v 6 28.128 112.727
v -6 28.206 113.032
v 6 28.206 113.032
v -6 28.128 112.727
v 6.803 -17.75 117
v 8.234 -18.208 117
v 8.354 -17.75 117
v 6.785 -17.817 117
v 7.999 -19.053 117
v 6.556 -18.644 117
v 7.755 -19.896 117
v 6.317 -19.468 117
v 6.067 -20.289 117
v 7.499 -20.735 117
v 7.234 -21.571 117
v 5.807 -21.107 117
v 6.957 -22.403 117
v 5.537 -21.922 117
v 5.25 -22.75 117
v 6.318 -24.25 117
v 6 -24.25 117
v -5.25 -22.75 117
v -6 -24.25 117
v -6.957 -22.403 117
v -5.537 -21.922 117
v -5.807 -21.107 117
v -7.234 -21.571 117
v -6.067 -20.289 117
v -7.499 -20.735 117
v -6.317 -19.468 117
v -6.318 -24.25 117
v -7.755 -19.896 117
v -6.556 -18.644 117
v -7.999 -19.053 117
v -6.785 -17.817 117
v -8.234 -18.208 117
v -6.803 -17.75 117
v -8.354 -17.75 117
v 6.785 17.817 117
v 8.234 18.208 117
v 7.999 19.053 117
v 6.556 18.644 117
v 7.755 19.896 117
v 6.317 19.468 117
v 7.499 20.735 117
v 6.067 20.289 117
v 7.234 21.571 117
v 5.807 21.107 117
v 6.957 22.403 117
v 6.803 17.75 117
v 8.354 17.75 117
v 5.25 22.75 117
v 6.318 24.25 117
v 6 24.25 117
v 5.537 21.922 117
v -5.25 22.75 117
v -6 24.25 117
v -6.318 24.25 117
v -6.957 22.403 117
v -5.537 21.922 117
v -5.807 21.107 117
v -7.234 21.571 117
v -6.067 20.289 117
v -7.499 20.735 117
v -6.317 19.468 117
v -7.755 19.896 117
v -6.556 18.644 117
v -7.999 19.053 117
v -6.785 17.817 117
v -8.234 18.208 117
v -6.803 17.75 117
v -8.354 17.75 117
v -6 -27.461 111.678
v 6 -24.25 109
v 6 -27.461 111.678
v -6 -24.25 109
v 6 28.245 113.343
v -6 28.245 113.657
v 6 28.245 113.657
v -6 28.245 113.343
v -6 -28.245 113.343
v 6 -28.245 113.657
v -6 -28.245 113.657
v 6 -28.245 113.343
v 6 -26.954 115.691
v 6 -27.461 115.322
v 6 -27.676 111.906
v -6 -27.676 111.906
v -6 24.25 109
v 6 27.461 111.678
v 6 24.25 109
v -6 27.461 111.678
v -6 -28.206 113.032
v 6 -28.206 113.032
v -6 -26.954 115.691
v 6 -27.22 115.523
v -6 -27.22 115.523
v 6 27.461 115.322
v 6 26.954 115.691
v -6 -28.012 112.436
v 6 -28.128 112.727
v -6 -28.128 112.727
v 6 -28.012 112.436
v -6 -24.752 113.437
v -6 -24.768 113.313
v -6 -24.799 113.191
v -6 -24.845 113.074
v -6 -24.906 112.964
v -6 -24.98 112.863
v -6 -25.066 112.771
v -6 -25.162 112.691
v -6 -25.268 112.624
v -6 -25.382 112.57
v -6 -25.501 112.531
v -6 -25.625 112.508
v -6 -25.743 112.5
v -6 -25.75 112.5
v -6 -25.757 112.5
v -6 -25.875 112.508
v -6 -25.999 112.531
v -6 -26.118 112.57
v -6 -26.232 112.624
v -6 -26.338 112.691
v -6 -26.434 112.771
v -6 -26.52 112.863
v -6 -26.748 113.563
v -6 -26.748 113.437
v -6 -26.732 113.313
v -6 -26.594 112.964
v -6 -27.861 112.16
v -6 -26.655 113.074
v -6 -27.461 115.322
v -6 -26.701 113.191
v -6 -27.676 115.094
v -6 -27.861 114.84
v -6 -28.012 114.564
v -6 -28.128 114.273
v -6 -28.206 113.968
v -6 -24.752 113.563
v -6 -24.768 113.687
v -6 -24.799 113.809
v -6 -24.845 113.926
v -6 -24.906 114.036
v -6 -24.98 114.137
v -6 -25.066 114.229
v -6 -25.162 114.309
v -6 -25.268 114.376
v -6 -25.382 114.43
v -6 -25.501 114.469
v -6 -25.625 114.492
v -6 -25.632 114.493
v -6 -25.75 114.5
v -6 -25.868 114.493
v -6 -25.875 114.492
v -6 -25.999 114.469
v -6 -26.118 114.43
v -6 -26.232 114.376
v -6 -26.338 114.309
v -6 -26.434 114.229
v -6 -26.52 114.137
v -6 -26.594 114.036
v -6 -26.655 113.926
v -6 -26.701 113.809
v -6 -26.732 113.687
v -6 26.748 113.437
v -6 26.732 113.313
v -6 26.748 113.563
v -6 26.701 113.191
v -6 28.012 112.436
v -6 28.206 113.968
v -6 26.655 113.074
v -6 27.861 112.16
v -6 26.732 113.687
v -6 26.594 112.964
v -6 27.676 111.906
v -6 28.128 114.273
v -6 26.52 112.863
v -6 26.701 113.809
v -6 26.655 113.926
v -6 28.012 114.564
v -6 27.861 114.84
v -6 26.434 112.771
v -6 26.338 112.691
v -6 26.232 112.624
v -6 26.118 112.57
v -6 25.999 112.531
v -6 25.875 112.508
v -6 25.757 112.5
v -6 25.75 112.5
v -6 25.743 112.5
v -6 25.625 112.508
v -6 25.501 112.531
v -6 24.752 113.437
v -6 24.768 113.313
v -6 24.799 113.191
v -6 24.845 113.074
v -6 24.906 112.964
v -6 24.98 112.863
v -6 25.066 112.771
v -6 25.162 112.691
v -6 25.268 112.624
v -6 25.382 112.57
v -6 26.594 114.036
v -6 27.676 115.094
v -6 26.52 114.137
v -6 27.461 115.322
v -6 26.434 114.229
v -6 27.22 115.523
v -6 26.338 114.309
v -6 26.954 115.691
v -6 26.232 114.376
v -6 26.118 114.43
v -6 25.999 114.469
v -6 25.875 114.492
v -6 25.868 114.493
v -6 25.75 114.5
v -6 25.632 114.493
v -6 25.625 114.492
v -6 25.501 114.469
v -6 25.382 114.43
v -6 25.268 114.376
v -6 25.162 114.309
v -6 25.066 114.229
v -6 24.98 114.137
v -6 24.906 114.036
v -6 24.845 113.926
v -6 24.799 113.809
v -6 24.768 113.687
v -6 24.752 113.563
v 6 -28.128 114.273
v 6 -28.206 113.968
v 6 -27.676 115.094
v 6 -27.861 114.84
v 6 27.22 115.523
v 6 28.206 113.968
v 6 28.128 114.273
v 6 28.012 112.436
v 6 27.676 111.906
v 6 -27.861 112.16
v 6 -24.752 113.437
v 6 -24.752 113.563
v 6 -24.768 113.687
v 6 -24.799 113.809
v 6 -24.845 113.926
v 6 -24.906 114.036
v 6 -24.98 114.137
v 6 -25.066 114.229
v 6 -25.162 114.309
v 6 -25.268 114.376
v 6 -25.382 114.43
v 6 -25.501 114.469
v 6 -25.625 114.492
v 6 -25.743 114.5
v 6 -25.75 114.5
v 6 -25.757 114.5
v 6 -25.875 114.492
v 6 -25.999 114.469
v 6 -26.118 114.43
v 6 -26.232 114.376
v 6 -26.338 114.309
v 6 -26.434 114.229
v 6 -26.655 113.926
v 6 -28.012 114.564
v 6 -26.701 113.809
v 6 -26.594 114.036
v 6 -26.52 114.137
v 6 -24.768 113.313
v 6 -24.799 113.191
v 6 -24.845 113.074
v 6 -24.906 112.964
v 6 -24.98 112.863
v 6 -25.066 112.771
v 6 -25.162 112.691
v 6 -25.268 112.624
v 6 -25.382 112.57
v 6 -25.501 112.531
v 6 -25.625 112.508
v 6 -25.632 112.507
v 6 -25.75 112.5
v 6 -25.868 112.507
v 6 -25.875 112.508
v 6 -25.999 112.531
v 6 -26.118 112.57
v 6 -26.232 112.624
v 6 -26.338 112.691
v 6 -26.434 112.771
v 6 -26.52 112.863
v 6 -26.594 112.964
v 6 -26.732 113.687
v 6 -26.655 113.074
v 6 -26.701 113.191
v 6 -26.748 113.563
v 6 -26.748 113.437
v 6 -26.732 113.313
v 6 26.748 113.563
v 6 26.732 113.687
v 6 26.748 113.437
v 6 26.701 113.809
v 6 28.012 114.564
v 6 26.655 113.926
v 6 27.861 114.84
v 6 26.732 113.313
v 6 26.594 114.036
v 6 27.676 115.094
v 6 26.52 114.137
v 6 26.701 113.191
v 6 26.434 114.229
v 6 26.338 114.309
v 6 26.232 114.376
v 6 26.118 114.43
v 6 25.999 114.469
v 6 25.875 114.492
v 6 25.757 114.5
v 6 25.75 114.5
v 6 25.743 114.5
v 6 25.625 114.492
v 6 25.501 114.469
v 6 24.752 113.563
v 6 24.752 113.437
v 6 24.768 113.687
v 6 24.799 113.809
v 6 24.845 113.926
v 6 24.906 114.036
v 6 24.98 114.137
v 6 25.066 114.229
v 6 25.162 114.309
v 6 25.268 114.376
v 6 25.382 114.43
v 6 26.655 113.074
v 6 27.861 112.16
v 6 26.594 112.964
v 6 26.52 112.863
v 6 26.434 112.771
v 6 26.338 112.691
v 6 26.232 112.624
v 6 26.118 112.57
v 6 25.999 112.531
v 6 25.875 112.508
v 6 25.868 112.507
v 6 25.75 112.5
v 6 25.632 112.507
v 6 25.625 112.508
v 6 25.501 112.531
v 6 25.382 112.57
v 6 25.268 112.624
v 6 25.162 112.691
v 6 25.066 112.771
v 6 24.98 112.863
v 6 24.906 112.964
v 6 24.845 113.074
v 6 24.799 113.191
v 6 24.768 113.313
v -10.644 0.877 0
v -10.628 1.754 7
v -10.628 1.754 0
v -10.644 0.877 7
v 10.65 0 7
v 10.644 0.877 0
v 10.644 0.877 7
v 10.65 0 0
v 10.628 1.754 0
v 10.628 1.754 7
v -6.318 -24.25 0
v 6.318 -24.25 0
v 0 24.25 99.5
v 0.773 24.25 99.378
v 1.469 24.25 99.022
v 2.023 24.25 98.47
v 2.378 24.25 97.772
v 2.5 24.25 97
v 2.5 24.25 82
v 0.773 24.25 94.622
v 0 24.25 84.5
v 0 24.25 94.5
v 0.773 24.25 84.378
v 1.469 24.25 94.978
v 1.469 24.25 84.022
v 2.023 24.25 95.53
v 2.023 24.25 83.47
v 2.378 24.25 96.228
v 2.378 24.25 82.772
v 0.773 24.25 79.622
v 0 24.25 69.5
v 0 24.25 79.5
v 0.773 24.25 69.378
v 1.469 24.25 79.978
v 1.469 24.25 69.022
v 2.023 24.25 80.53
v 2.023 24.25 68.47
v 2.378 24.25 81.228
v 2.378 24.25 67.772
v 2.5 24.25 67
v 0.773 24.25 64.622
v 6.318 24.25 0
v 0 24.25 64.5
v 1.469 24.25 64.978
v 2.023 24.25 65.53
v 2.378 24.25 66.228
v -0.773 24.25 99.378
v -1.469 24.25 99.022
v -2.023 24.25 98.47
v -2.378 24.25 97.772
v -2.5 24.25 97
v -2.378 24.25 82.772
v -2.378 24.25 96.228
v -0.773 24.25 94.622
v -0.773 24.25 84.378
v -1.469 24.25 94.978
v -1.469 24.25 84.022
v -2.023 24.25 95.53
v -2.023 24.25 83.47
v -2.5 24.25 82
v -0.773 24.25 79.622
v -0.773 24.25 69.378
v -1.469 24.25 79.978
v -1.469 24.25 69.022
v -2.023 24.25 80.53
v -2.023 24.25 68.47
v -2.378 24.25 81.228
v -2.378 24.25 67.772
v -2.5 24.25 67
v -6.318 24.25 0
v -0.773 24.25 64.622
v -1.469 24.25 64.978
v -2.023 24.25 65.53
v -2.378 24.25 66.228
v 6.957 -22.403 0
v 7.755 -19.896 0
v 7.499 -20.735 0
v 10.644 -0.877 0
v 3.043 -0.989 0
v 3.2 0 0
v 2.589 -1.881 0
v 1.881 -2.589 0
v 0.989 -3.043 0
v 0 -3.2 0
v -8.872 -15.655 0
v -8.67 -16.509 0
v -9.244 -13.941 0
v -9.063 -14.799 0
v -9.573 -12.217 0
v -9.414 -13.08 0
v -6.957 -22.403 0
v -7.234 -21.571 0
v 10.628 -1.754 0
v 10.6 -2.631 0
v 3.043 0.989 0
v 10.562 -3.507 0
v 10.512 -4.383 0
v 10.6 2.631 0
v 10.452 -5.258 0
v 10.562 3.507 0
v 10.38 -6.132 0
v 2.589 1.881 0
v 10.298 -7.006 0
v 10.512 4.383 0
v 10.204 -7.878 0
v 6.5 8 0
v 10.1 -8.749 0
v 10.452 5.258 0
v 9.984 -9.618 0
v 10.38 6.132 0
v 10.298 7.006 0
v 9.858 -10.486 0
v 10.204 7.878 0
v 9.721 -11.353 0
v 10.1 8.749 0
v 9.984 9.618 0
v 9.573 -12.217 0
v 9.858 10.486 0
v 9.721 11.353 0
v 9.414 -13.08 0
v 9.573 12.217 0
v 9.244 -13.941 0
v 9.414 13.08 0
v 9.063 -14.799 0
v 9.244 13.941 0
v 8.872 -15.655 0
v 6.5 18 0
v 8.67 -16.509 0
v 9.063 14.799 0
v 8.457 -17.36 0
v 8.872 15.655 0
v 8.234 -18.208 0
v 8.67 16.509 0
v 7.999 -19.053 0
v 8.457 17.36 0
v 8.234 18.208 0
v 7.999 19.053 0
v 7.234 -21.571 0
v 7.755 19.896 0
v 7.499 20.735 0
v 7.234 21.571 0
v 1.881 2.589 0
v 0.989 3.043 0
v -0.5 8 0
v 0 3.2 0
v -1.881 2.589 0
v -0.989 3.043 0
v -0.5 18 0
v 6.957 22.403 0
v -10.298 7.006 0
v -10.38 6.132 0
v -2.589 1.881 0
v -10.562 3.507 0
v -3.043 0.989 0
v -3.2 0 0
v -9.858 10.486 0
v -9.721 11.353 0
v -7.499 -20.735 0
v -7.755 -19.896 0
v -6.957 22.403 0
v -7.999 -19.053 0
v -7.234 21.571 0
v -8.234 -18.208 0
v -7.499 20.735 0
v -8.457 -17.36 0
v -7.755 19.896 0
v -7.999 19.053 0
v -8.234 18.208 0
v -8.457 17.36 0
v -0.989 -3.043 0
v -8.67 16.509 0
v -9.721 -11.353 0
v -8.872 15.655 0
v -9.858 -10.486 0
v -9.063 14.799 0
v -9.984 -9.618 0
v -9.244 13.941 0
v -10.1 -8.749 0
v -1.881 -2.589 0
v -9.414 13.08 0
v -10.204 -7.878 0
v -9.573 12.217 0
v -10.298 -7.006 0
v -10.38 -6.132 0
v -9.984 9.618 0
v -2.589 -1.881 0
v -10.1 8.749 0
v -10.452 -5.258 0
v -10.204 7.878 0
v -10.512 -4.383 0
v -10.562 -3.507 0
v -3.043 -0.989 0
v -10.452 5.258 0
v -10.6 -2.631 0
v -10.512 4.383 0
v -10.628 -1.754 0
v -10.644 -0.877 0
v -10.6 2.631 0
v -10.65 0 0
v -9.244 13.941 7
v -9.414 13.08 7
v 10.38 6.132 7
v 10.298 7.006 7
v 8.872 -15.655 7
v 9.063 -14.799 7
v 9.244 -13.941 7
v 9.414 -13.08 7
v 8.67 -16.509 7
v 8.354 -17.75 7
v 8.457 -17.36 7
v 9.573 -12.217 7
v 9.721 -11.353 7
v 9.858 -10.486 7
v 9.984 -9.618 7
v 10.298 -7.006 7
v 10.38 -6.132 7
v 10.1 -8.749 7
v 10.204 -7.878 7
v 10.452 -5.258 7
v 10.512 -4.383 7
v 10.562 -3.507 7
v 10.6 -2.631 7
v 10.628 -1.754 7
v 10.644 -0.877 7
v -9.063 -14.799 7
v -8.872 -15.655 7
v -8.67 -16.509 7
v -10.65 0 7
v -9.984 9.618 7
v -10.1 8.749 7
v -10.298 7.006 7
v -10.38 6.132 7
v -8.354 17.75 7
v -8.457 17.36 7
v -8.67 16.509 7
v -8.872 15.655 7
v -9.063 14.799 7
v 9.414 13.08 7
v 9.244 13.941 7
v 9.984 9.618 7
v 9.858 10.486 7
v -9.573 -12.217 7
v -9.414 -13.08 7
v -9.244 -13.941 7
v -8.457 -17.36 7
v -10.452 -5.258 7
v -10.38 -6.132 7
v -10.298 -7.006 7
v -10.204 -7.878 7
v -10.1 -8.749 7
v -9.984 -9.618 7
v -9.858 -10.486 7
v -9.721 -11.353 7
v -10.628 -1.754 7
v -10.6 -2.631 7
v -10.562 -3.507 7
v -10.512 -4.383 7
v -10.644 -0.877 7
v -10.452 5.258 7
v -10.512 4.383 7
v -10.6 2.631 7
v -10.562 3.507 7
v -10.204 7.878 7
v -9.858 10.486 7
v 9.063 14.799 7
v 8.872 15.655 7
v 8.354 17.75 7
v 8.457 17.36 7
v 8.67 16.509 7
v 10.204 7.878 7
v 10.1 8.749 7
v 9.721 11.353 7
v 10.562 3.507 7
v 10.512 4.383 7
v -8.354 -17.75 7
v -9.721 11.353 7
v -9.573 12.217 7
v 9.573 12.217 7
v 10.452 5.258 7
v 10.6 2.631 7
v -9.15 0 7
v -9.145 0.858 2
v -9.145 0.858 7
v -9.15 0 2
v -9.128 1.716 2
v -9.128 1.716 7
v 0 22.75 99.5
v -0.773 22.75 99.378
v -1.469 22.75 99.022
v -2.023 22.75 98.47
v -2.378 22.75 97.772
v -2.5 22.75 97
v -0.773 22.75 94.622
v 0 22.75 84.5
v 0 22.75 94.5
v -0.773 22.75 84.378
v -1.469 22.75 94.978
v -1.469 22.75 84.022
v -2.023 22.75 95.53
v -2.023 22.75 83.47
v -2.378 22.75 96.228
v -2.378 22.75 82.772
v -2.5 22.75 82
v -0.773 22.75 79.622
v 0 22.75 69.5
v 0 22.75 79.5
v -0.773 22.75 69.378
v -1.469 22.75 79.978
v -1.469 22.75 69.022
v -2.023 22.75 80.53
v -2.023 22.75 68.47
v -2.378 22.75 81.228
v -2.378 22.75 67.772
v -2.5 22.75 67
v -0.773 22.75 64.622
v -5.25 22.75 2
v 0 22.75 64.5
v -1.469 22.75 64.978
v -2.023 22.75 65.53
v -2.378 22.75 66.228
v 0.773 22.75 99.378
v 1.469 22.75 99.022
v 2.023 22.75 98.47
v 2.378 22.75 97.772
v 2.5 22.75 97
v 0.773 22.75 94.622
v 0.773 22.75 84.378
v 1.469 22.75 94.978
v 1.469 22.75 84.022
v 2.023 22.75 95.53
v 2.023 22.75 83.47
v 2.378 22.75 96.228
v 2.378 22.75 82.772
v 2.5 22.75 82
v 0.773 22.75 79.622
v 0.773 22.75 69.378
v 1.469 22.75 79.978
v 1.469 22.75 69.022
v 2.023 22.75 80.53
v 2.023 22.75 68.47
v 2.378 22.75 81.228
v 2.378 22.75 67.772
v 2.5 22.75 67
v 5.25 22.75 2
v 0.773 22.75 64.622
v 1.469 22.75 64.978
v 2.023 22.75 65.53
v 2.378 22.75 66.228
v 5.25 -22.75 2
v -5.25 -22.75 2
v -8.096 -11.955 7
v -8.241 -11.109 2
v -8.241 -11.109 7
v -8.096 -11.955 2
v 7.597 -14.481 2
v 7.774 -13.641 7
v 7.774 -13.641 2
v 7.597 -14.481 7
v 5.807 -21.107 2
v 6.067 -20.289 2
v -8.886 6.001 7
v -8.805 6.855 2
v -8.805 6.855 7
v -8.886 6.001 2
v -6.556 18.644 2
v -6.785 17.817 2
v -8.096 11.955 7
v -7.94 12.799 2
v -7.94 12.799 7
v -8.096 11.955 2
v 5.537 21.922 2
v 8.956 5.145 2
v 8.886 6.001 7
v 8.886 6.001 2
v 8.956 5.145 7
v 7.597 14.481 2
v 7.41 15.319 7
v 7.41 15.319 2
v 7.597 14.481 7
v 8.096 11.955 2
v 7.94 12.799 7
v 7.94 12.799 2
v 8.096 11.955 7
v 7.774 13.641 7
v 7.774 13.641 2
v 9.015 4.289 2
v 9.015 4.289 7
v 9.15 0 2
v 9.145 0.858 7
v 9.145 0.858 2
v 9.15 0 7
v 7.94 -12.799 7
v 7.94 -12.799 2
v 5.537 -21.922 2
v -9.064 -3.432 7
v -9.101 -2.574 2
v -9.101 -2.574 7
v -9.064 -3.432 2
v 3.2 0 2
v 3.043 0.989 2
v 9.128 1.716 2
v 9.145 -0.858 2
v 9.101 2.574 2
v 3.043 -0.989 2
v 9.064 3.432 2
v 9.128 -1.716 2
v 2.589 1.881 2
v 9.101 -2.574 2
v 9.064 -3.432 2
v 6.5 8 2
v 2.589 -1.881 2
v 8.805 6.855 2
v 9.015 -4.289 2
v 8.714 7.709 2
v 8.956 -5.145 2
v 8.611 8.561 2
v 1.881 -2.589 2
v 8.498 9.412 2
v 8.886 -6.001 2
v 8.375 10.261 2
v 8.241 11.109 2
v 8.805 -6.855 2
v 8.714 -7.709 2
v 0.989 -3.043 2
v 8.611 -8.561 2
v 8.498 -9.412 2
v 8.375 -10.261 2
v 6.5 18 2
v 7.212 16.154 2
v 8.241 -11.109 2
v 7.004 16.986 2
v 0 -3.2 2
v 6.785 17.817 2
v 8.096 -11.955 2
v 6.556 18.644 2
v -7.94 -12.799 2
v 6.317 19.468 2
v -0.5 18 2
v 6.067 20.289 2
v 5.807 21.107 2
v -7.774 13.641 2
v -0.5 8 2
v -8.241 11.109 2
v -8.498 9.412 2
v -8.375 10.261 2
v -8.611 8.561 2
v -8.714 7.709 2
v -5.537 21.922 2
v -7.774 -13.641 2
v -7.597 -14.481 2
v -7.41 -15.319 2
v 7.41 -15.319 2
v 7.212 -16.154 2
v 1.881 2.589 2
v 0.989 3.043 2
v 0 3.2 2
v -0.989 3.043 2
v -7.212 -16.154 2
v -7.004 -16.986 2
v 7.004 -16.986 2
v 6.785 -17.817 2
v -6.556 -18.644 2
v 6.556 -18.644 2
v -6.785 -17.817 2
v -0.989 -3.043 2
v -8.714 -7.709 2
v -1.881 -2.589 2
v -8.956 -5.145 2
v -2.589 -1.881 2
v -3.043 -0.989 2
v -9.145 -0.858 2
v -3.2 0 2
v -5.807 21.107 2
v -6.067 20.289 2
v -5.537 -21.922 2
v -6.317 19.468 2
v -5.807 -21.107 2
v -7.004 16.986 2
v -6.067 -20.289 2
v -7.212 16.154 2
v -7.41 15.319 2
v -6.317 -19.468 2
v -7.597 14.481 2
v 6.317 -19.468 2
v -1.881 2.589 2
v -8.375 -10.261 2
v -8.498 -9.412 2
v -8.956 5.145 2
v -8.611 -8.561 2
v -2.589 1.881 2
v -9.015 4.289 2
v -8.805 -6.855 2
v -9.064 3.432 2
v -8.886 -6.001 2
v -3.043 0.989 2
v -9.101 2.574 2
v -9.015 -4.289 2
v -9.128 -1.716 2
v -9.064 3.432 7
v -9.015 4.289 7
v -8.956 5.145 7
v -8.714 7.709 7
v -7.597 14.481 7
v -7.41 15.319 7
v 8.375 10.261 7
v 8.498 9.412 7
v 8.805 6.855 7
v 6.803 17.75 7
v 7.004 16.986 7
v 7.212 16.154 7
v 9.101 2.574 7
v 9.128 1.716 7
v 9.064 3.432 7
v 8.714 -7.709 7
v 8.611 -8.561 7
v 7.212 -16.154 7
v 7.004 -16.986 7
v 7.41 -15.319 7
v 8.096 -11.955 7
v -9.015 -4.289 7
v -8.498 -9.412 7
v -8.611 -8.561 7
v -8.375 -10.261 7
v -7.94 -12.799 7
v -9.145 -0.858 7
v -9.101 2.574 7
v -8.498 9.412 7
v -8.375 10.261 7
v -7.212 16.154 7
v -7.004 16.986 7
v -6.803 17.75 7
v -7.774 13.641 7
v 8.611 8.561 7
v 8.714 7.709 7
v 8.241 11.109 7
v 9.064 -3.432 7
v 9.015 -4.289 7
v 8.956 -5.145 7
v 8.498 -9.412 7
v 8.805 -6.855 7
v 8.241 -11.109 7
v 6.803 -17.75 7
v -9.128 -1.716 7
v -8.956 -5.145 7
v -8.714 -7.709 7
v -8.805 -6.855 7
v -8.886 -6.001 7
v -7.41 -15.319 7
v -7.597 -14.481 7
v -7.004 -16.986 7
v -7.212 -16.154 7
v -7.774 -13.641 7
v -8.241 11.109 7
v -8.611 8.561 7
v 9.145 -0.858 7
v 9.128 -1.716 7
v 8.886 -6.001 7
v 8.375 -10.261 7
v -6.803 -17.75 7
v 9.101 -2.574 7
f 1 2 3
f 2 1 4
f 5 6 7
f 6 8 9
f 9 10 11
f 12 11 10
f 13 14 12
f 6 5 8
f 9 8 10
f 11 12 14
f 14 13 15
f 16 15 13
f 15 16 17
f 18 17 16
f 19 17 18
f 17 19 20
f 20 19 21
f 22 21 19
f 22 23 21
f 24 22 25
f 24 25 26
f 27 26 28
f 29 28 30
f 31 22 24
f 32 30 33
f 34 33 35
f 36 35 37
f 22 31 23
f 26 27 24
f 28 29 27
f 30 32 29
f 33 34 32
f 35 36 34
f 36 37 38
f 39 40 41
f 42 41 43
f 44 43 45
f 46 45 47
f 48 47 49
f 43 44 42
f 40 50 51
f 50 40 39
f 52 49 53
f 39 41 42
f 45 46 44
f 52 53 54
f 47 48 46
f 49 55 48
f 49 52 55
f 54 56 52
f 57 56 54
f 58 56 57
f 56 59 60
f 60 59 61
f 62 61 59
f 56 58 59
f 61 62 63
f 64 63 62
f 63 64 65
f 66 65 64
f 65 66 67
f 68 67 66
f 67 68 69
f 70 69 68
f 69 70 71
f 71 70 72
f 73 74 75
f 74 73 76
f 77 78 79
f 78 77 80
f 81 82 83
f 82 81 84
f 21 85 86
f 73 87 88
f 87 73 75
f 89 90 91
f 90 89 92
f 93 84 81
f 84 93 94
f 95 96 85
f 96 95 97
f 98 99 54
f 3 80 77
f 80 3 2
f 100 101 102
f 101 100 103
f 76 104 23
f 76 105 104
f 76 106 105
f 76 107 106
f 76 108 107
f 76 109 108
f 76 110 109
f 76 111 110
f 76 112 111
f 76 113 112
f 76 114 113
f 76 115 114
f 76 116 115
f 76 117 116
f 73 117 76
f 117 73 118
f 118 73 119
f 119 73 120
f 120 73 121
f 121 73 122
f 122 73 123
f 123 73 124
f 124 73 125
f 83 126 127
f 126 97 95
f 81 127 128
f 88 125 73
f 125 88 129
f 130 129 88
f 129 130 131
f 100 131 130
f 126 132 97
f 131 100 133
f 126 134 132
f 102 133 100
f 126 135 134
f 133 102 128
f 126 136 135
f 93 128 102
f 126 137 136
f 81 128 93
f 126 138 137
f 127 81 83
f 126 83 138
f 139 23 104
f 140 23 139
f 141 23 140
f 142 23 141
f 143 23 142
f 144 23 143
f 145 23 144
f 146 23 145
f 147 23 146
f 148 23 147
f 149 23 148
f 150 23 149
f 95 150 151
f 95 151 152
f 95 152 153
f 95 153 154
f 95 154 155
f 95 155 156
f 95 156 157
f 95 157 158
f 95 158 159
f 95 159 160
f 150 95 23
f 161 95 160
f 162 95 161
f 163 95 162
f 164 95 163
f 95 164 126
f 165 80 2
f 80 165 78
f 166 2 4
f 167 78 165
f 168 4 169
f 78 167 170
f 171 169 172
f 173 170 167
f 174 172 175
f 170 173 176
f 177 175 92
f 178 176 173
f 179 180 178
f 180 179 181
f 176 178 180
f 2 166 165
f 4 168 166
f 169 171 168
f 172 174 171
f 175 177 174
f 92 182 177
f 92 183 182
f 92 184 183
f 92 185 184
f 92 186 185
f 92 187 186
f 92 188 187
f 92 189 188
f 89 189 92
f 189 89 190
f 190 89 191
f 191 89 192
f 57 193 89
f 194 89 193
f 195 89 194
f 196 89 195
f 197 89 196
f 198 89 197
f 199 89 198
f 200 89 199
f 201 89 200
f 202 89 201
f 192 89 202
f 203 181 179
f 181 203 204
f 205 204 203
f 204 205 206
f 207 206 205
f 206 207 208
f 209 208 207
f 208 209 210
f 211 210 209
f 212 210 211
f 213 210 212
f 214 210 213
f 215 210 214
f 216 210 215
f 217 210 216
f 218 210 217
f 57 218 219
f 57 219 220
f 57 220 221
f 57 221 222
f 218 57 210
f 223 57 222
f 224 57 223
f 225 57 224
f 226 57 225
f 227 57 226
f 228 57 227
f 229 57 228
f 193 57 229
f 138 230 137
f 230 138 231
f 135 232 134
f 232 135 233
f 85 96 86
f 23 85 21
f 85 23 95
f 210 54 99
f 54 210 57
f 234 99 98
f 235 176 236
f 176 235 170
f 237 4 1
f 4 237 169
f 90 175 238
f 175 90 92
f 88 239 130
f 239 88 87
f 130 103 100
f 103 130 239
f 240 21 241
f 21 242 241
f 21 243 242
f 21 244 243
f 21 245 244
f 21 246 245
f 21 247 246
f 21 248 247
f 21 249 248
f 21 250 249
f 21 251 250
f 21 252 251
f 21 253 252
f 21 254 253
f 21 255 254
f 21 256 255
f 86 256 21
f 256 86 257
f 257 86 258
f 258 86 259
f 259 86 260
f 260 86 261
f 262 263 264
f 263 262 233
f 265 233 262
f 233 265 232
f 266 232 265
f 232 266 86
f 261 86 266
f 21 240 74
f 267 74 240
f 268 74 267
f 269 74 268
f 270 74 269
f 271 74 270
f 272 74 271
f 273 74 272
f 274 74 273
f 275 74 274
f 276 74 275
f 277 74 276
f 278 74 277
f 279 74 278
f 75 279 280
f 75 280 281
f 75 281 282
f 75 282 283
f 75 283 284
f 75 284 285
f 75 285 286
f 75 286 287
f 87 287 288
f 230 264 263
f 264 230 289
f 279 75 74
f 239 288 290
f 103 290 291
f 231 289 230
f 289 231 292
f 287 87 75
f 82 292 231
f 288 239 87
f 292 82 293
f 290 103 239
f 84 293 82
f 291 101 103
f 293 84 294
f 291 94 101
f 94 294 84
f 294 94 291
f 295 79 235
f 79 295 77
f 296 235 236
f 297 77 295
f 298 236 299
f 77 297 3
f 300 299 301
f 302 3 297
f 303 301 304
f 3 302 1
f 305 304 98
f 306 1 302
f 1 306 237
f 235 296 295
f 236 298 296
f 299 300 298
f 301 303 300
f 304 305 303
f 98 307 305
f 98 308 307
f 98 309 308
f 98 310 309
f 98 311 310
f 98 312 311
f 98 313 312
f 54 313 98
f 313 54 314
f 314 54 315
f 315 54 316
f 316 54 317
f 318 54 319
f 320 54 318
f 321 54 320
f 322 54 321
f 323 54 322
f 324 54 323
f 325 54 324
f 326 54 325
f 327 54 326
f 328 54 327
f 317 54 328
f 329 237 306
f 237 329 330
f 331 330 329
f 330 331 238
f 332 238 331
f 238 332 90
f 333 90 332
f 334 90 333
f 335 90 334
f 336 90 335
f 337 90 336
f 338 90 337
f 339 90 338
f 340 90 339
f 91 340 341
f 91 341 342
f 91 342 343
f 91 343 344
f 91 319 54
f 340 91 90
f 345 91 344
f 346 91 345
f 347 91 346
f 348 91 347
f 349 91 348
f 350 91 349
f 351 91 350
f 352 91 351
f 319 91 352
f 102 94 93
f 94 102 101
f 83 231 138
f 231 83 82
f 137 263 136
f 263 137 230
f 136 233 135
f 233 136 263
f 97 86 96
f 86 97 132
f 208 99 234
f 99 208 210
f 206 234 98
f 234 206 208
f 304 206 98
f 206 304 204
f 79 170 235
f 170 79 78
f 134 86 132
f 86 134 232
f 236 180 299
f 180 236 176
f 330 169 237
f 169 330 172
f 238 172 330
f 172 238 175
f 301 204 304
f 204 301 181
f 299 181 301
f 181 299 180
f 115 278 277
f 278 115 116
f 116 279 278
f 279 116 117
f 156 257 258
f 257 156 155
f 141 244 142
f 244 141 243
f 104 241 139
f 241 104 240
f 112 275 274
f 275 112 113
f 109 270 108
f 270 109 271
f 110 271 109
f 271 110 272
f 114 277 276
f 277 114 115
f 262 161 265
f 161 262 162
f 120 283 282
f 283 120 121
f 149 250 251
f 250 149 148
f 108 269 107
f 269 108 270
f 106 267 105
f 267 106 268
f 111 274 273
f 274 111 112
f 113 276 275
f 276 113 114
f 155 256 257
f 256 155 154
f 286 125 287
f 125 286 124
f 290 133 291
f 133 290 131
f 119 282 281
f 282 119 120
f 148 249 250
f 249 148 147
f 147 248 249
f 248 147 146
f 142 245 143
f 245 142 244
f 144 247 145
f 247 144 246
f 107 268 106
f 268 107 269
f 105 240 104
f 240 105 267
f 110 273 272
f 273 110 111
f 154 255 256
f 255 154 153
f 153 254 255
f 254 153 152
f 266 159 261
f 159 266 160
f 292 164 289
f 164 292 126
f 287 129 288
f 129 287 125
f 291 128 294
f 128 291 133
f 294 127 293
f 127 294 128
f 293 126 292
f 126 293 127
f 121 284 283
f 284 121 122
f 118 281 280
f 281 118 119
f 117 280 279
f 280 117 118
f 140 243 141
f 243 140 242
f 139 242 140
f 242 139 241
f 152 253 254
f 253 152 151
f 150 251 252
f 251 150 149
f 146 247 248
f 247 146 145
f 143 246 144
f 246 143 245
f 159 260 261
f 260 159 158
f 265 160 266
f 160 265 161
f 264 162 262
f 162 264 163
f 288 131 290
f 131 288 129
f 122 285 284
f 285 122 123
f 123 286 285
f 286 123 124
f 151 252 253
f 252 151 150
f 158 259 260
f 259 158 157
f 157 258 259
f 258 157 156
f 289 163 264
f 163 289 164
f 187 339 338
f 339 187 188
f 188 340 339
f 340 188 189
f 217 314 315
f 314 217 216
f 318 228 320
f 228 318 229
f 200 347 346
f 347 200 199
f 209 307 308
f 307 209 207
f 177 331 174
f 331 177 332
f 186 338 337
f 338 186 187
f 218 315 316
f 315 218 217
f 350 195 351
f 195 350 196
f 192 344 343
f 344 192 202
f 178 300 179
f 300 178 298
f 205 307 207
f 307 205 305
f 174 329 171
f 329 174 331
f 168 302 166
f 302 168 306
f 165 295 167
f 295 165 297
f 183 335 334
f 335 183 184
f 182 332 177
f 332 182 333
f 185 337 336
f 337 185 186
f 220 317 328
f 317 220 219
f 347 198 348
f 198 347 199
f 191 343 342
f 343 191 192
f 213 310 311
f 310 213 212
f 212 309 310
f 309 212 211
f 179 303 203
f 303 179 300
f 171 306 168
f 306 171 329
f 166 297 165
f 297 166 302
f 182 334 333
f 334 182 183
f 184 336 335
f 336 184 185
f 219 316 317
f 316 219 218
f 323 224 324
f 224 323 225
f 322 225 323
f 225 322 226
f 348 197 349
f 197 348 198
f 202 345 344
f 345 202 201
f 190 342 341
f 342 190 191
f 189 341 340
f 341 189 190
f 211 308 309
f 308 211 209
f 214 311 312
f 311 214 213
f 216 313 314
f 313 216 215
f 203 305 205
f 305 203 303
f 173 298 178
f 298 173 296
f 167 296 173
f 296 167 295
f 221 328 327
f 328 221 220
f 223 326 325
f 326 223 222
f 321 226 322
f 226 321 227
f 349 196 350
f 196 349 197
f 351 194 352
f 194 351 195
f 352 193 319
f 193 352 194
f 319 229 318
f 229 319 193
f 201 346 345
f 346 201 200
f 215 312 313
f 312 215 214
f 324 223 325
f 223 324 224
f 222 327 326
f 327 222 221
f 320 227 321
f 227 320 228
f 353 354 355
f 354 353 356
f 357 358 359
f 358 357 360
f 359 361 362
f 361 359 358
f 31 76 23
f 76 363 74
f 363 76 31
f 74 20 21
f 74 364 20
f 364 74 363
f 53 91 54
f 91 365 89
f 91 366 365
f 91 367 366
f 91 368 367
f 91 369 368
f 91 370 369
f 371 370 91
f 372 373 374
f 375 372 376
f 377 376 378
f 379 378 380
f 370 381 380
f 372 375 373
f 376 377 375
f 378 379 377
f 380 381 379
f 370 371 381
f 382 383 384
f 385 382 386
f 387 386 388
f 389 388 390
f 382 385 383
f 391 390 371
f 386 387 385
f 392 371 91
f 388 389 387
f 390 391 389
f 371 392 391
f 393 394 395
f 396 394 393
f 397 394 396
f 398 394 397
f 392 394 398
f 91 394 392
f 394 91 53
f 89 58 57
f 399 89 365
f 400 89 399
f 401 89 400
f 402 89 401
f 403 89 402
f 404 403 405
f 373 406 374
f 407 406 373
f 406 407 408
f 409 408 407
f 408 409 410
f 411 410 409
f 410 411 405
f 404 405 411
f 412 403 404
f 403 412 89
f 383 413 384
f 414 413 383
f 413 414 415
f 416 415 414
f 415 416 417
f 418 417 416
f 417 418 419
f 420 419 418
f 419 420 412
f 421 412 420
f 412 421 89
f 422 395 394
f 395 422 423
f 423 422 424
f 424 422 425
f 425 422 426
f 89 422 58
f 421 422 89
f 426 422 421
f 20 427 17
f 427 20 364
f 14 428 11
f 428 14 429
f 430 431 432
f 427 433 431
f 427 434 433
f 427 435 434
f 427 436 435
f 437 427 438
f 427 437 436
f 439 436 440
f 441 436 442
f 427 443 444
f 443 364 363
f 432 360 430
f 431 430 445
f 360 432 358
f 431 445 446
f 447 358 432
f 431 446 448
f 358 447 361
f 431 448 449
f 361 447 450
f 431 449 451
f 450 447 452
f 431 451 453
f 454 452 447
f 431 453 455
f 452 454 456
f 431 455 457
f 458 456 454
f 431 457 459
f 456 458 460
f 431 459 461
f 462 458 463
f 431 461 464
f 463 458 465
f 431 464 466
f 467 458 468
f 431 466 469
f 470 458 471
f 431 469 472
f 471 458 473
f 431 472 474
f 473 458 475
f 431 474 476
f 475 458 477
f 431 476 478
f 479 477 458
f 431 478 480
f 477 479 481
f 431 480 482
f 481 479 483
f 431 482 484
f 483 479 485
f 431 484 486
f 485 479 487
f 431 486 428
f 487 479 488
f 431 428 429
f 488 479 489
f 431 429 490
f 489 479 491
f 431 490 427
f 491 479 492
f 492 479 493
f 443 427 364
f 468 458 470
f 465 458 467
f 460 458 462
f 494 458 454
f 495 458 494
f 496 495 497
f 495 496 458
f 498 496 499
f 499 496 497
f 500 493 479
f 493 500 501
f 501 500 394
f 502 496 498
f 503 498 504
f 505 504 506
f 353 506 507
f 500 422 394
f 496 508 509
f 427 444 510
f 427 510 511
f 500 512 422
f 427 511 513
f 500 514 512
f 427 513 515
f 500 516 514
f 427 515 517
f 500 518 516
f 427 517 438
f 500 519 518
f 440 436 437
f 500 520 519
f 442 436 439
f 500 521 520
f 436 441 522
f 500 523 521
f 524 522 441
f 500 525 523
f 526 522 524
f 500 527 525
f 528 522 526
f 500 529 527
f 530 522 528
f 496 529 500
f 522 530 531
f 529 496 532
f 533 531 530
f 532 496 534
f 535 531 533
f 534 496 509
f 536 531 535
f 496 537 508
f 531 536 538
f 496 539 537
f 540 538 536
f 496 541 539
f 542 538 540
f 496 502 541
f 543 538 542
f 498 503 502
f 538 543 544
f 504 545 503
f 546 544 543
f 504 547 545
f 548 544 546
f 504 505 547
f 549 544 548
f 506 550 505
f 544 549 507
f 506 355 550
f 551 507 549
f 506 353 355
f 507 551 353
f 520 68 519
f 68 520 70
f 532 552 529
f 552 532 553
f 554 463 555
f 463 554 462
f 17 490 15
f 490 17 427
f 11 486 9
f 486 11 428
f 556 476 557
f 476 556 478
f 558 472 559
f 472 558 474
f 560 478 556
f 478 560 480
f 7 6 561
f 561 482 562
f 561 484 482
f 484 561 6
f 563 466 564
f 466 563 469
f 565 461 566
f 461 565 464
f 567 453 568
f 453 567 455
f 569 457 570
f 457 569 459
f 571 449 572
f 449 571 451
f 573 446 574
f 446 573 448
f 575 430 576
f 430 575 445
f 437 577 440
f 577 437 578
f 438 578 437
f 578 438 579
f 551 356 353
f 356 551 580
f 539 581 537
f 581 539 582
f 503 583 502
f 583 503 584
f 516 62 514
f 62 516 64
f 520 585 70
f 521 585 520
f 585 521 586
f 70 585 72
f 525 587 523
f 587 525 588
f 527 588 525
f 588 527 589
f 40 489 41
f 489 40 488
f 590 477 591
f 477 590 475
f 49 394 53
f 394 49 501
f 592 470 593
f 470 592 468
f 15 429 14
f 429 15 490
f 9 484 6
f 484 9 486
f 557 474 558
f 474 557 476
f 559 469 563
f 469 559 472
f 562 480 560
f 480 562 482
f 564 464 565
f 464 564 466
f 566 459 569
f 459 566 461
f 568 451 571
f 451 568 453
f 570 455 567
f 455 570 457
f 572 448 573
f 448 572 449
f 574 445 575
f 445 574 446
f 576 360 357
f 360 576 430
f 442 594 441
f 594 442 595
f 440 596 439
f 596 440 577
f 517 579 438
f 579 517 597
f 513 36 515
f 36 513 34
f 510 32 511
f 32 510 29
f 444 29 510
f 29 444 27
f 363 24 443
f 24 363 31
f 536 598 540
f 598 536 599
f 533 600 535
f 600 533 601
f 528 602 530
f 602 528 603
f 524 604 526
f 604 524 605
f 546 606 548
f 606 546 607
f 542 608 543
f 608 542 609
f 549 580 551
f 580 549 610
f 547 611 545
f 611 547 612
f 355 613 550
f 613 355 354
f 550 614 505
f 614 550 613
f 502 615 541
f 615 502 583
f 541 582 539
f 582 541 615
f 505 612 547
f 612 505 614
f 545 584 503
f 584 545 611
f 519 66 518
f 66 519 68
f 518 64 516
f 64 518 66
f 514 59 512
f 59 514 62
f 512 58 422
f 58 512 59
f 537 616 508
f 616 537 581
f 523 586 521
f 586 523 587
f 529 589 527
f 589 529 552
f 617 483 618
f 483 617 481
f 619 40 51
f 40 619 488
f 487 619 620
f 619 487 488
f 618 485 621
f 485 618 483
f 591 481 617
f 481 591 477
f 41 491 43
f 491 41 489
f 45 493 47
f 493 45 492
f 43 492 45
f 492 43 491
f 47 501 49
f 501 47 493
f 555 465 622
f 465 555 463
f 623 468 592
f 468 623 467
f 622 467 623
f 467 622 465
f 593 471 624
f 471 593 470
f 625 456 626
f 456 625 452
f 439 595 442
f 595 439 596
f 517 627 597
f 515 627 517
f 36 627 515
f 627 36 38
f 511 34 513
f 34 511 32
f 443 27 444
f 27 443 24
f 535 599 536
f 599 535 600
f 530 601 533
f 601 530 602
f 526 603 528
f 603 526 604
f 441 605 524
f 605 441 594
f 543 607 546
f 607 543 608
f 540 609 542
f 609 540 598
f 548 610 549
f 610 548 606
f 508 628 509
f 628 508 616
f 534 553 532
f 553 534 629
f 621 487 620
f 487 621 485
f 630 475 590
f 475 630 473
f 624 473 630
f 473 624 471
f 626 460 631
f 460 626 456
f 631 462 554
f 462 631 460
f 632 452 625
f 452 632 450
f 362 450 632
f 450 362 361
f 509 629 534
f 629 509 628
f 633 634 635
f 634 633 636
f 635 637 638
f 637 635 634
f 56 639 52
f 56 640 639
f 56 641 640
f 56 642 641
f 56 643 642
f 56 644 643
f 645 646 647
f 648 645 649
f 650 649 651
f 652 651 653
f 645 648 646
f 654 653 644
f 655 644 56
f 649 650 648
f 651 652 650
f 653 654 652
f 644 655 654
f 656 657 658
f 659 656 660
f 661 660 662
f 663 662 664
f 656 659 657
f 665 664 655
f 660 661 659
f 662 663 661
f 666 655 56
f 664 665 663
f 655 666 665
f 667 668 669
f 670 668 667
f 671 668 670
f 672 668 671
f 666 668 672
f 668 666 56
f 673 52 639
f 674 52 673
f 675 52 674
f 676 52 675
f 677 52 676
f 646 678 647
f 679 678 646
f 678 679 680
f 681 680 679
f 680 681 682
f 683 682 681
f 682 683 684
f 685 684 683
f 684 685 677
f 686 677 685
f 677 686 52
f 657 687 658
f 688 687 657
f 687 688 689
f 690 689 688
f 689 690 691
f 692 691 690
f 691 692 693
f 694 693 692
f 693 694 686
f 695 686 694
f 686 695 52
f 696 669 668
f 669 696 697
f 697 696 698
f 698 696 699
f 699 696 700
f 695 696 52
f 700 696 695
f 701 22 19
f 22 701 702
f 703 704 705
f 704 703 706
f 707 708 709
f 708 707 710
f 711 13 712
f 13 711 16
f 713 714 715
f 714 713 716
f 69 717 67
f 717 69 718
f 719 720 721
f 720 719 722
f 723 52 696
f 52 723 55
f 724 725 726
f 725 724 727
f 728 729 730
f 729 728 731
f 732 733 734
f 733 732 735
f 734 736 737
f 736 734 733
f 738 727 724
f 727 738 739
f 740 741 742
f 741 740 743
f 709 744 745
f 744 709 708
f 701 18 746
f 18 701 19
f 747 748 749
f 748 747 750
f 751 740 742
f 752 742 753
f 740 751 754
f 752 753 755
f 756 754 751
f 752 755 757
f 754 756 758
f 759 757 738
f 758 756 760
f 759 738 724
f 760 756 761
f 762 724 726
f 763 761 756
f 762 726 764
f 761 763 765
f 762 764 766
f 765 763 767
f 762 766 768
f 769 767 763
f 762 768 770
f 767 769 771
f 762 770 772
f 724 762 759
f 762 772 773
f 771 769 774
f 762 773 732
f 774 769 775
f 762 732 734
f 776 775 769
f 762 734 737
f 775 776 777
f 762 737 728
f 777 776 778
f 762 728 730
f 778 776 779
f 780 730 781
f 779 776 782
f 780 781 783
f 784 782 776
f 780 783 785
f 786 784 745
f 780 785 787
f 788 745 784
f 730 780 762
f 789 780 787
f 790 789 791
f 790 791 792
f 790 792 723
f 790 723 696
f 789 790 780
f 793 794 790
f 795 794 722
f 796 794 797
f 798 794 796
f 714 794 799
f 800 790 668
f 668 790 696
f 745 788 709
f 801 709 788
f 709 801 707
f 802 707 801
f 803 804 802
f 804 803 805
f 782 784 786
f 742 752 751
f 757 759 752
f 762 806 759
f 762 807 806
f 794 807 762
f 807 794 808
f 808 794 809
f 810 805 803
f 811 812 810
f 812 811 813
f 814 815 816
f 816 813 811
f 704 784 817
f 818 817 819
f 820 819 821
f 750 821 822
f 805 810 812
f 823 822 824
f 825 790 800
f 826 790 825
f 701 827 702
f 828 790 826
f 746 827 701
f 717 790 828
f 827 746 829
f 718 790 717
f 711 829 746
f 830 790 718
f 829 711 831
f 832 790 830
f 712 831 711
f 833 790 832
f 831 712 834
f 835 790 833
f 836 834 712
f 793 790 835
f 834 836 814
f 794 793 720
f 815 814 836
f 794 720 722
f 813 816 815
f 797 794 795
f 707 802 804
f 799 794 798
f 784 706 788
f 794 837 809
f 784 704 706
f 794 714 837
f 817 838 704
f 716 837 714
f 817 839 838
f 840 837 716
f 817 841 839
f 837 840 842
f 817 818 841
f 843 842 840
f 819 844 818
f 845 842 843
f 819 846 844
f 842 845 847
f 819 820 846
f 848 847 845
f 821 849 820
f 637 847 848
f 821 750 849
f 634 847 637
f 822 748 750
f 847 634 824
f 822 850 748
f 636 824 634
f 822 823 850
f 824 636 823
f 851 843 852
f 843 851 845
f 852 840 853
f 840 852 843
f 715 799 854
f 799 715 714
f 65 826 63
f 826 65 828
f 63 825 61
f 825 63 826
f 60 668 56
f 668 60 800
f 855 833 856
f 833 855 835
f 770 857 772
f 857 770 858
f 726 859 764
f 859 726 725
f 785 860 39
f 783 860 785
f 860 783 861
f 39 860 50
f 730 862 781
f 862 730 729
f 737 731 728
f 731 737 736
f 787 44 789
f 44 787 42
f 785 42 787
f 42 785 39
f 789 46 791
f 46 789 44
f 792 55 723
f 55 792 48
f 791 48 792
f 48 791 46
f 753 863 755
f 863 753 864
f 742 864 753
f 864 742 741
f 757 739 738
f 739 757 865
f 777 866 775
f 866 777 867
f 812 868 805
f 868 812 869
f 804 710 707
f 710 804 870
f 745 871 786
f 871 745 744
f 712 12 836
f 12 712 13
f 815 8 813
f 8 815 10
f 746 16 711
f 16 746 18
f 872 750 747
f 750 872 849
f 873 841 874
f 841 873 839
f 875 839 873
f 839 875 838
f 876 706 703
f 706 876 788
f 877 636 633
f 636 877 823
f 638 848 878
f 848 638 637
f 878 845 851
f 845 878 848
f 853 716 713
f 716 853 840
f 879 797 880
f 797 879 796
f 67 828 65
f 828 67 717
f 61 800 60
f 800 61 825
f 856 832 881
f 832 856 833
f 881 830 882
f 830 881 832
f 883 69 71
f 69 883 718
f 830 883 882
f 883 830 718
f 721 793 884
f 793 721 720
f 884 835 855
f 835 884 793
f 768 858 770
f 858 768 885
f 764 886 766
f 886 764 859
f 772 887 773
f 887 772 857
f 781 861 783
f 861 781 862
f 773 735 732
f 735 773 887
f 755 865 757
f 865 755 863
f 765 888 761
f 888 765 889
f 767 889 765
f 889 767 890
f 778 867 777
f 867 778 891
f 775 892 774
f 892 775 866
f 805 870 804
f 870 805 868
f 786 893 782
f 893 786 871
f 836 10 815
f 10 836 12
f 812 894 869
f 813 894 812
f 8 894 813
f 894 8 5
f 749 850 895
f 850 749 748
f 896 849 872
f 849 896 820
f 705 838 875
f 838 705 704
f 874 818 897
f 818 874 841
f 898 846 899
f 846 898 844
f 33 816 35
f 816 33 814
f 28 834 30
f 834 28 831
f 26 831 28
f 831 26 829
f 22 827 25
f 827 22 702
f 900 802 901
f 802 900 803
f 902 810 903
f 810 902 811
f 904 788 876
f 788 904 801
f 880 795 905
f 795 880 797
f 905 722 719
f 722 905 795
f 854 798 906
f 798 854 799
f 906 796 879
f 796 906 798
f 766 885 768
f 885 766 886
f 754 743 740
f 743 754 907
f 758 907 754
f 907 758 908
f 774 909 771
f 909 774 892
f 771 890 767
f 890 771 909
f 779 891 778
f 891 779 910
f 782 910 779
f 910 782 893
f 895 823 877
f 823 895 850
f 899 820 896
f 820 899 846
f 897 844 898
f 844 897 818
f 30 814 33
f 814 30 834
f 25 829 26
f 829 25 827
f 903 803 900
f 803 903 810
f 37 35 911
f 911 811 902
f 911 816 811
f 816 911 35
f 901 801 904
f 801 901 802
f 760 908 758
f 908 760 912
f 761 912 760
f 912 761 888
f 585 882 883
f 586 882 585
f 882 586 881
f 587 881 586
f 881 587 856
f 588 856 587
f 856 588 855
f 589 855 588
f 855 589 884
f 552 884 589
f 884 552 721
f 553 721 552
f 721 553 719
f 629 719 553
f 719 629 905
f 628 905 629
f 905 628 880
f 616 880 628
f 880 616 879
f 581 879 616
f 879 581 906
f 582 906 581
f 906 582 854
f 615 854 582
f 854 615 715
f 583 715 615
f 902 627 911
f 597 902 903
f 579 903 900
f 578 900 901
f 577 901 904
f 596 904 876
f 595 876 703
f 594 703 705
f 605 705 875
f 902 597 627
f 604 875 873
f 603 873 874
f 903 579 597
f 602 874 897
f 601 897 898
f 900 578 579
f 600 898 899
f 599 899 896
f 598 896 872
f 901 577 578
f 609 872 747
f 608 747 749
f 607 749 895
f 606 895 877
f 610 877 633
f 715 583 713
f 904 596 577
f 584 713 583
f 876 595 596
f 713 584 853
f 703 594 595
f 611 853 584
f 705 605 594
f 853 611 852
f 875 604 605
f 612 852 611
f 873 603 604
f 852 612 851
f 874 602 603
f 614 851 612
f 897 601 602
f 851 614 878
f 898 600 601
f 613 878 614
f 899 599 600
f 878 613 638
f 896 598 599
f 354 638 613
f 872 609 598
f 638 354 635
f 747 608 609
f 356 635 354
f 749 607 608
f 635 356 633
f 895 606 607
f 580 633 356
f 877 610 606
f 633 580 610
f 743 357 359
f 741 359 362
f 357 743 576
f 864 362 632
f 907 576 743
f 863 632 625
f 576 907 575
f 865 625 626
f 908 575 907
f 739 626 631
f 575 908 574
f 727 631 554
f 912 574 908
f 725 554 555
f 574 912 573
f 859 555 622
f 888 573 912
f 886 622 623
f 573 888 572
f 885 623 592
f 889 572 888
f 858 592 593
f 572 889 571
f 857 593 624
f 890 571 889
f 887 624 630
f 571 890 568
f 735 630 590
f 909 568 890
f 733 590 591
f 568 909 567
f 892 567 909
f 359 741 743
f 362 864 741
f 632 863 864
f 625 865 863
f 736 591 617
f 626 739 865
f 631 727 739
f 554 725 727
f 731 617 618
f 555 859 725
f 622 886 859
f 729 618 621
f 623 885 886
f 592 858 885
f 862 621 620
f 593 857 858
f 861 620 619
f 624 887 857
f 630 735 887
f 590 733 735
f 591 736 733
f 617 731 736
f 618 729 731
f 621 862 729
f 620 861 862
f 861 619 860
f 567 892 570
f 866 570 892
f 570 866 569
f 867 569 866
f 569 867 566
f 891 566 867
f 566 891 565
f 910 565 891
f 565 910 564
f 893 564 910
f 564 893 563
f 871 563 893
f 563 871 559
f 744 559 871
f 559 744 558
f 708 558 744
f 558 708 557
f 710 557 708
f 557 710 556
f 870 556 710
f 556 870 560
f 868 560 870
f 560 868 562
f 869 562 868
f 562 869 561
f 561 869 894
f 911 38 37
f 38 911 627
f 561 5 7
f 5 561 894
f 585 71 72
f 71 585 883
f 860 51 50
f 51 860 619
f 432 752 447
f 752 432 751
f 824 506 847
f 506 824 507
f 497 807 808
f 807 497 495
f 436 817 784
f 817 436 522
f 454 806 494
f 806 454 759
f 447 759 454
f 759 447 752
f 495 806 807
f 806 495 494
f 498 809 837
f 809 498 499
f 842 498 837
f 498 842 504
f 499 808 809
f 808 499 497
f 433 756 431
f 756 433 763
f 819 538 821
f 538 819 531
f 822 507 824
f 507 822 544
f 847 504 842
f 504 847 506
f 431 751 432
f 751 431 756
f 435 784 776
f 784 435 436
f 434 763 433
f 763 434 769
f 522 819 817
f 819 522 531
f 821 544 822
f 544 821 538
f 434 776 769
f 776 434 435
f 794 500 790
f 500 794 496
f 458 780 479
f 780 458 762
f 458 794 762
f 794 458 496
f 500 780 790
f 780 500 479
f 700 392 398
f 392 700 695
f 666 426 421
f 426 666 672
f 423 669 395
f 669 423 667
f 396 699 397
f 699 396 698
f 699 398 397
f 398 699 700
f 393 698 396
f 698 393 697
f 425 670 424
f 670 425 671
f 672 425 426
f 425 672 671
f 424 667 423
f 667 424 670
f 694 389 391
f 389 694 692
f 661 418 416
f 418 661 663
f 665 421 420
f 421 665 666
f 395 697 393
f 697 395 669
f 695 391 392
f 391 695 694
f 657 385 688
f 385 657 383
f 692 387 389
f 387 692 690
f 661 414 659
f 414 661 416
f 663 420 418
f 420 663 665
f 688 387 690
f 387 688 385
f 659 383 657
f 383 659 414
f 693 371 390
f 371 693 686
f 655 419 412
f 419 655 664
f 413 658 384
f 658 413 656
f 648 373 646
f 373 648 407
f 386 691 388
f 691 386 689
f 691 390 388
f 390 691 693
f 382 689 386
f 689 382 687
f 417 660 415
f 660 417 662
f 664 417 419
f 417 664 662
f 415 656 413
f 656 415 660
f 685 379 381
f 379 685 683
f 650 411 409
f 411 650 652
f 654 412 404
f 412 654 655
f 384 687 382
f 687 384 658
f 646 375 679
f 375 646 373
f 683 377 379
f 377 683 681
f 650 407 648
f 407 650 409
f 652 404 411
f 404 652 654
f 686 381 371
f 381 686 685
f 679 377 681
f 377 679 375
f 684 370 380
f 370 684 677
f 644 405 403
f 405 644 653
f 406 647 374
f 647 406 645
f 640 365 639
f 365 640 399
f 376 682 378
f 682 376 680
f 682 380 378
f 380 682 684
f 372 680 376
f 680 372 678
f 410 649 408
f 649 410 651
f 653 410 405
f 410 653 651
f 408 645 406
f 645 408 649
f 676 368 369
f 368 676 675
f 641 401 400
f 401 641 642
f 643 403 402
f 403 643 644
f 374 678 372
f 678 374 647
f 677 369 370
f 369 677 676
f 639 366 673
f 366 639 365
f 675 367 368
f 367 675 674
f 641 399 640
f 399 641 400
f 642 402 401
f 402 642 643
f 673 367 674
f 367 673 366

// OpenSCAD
// file: parameters.scad
maximum_printable_size = 150;

layer_thickness = 0.2;
global_clearance = 0.5;

platform_base_diameter = 400; // Průměr ukotvení válců spodní platformy
platform_base_thickness = 20;
platform_cylinder_medium_length = 250;  // délka pneumatického válce s pístem vysunutým do poloviny rozsahu
platform_base_cylinder_spacing = 38;    //rozestupy spodního a horního ukotvení válců.
platform_top_cylinder_spacing = 30;
platform_top_diameter = 150;   // Průměr horní základny (vdálenost od středu základny do středu kulového kloubu ke kterému je uchycen pneumatický válec)


// screw length step - minimum difference in length between two types of screws
basic_screw_length = 5;


//Screw diameter and nut for M10 [mm]
M10_screw_diameter = 10.4;
M10_head_height = 10;
M10_head_diameter = 16+0.5;
M10_nut_height = 10.5;
M10_nut_diameter = 25.5;
M10_nut_pocket = 22.3;

//Screw diameter for M8 [mm]
M8_screw_diameter = 8.6;
M8_head_height = 8;
M8_head_diameter = 13.5;
M8_nut_height = 7.5;
M8_square_nut_thin_height = 4.5;
M8_nut_diameter = 14.4 + 0.5;
M8_nut_pocket = 13 + 0.5;
M8_washer_diameter = 16;
M8_washer_thickness = 1.5;


//Screw diameter and nut for M6 [mm]
M6_screw_diameter=6.5;
M6_head_diameter = 10+0.5;
M6_head_height = 6;
M6_nut_height = 4.9;
M6_nut_diameter = 11.8;
M6_nut_pocket = 10.4;
M6_square_nut_height = 3;
M6_square_nut_diameter = 10;

//Screw diameter and nut for M5 [mm]
M5_screw_diameter=5.5;
M5_head_height = 5;
M5_head_diameter = 13+0.5;
M5_nut_height = 4.5;
M5_nut_diameter = 9.4;
M5_nut_pocket = 8.4;

//Screw diameter and nut for M4 [mm]
M4_screw_diameter=4.5;
M4_screw_head_height = 4;
M4_nut_height = 3.2;
M4_nut_diameter = 8.4;
M4_nut_pocket = 7.5;

//Screw diameter and nut for M3 [mm]
M3_screw_diameter = 3.2;
M3_nut_height = 2.7;
M3_nut_diameter = 6.6;
M3_nut_pocket = 5.6;
M3_screw_head_height = 3;

//Screw diameter and nut for M2,5 [mm]
M2_5_screw_diameter = 2.7;
M2_5_nut_height = 2.3;
M2_5_nut_diameter = 6;
M2_5_nut_pocket = 5.5;

// kulove lozisko

bearing_efsm_08_h = 33+1;
bearing_efsm_08_m = 22;
bearing_efsm_08_db = 18;
bearing_efsm_08_ag = 10.5;
bearing_efsm_08_n = M4_screw_diameter;
bearing_efsm_08_a1 = 5.5;
bearing_efsm_08_d = 8.25;
bearing_efsm_08_B = 8; // ball height

bearing_efsm_10_h = 38+1;
bearing_efsm_10_m = 26;
bearing_efsm_10_db = 21.9;
bearing_efsm_10_ag = 12+0.2;
bearing_efsm_10_n = M5_screw_diameter;
bearing_efsm_10_a1 = 6.5;
bearing_efsm_10_d = 10.25;


bearing_efsm_12_width = 40+1;
bearing_efsm_12_h = bearing_efsm_12_width;
bearing_efsm_12_boltd = 28/2; // polovina vzdalenosti mezi srouby
bearing_efsm_12_m = bearing_efsm_12_boltd*2;
bearing_efsm_12_db = 25;
bearing_efsm_12_ag = 13;
bearing_efsm_12_a1 = 7;
bearing_efsm_12_n = M5_screw_diameter;
bearing_efsm_12_d = 12.15;
bearing_efsm_12_B = 10; // ball height
bearing_efsm_space = 1;

bearing_efsm_17_width = 54+1;
bearing_efsm_17_h = bearing_efsm_17_width;
bearing_efsm_17_boltd = 38/2; // polovina vzdalenosti mezi srouby
bearing_efsm_17_m = bearing_efsm_17_boltd*2;
bearing_efsm_17_db = 35;
bearing_efsm_17_ag = 18;
bearing_efsm_17_n = M6_screw_diameter;
bearing_efsm_17_a1 = 10;
bearing_efsm_17_B = 17; // ball height

//limcove lozisko
bearing_EFOM_10_L=26; //celkova sirka zakladny
bearing_EFOM_10_d1=10.3;//diametr otvoru real=10 mm
bearing_EFOM_10_dB=22;//diametr vystupku pro ulozeni lozika
bearing_EFOM_10_H=52;//celková delka zakladny
bearing_EFOM_10_J=36;// hole pitch
bearing_EFOM_10_A1=6.5;//vyska pouzdra
bearing_EFOM_10_Ag=12;//celkova vyska
bearing_EFOM_10_N1=5;//sirka otvoru pro sroub
bearing_EFOM_10_N2=8;//delka otvoru pro sroub
bearing_EFOM_10_m=36;//roztec der pro sroub
bearing_EFOM_10_h=9;//vyska lozika


608_bearing_outer_diameter = 22.3;
608_bearing_inner_diameter = 16;
608_bearing_thickness = 7.1;


// 20 KG servo parameters

servo_20kg_axis_offset = 9.375; // jak je osa mimo stredu
servo_20kg_body_x = 42;
servo_20kg_body_y = 21;
servo_20kg_body_z = 40;
servo_20kg_thread_x = 49/2;
servo_20kg_thread_y = 10/2;
servo_20kg_body_below = 10; // jak hluboko je tělo serva pod drzaky na srouby
servo_20kg_below = 25.8; // jak hluboko je páka serva pod drzaky na srouby

servo_20kg_bolt_d = 2.5+0.3;
servo_20kg_nut_d = 5+0.3;


//strain gauge
strain_gauge_width = 12.7;
strain_gauge_length = 75.1;
strain_gauge_screw_distance = 10;

//ALU profile
ALU_profile_width = 30.3;
ALU_profile_holder_wall_thickness = 3;
ALU_profile_groove_width = 8;

//pillow block bearing
//https://www.igus.eu/product/372
//Part no. KSTM-08
KSTM08_screws_distance = 33;         //m
KSTM08_screws_holes_diameter = 4.5;  //d2
KSTM08_flange_thickness = 6;         //h3
KSTM08_case_width = 9;               //C1
KSTM08_case_length = 47;             //a
KSTM08_ball_width = 12;              //B


//ložiska pro malý rotor
bearing_outer_diameter = 10.2;    // Rozměr B1 v nákresu s přídavkem na toleranci otvoru
bearing_thickness = 4;        // Rozměr B2 v nákresu
//bearing_shaft_length = 19.5;    // Rozměr B3 v nákresu, Originalni hodnota 19.5
bearing_shaft_length = 20;    // Rozměr B3 v nákresu


//parametry víčka s telemetrickou anténou
S01_sila_materialu=1.2;
S01_vyska_horni_zavit=10;
S01_hloubka_zavitu=4;
S01_prumer_vnitrni=50;
LO_spodni_prumer=17.2;
LO_vyska_bez_krytu=15;
S01_tolerance_zavit=1.5;
R01_vyska_prekryti_statoru=10;


//RICOH THETA V
camera_width = 45.5;
camera_thickness_center = 18.3;
camera_thickness_side = 10.5;
camera_screw_diameter = 6.4;
camera_usb_translate_x = 3;
camera_usb_translate_y = 13;
camera_buttons_diameter = 5;
camera_buttons_distance = 15;
camera_first_button_height = 65;

//USB (A -> micro) cable
usb_width = 10;
usb_height = 7;
// main file
include <parameters.scad>


wall_thickness = 1.5;
wall_size = 5;
wall_height = camera_first_button_height+camera_buttons_distance*2+20;
bottom_thickness = 2;

protection_wire_diameter = 2;

side_difference = (camera_thickness_center-camera_thickness_side)/2;
center_to_side_distance = sqrt( pow(side_difference, 2) + pow(camera_width/2, 2) );
angle = atan( (camera_width/2) / (side_difference) );
main_radius = (center_to_side_distance/2) / cos(angle);

module bottom(height=1, offset=1) {
    linear_extrude(height = height)
    offset(delta=offset)
    intersection() {
        translate([-50, -camera_width/2, 0])
            square([100, camera_width]);

        translate([main_radius-camera_thickness_center/2, 0, 0])
            circle(r=main_radius, $fn=500);

        translate([-main_radius+camera_thickness_center/2, 0, 0])
            circle(r=main_radius, $fn=500);
    }
}

difference() {
    union() {
        bottom(wall_height+bottom_thickness, wall_thickness);

        translate([0, 0, wall_height-protection_wire_diameter-wall_thickness*4])
        difference() {
            hull() {
                translate([0, 0, bottom_thickness+(protection_wire_diameter+wall_thickness*4)/2])
                    cube([camera_thickness_side+wall_thickness, camera_width+wall_thickness*2, protection_wire_diameter+wall_thickness*4], center=true);

                translate([0, -camera_width/2-wall_thickness*2, bottom_thickness+wall_thickness*3])
                    rotate([0, 90, 0])
                        cylinder(d=protection_wire_diameter+wall_thickness*2, h=camera_thickness_side+wall_thickness, $fn=50, center=true);

                translate([0, camera_width/2+wall_thickness*2, bottom_thickness+wall_thickness*3])
                    rotate([0, 90, 0])
                        cylinder(d=protection_wire_diameter+wall_thickness*2, h=camera_thickness_side+wall_thickness, $fn=50, center=true);
            }
            translate([0, -camera_width/2-wall_thickness*2, bottom_thickness+wall_thickness*3])
                rotate([0, 90, 0])
                    cylinder(d=protection_wire_diameter, h=camera_thickness_side+wall_thickness*2, $fn=50, center=true);

            translate([0, camera_width/2+wall_thickness*2, bottom_thickness+wall_thickness*3])
                rotate([0, 90, 0])
                    cylinder(d=protection_wire_diameter, h=camera_thickness_side+wall_thickness*2, $fn=50, center=true);
        }
    }

    translate([0, 0, bottom_thickness])
        bottom(wall_height+1, 0);

    translate([0, 0, bottom_thickness+wall_height/2+wall_size])
        cube([100, camera_width-wall_size*2, wall_height], center=true);

    cylinder(d=camera_screw_diameter, h=bottom_thickness*3, $fn=20, center=true);

    translate([camera_usb_translate_x, camera_usb_translate_y, 0])
        cube([usb_height, usb_width, bottom_thickness*3], center=true);

    //buttons
    translate([0, 0, bottom_thickness+camera_first_button_height])
        rotate([-90, 0, 0])
            cylinder(d=camera_buttons_diameter, h=100, $fn=20);

    translate([0, 0, bottom_thickness+camera_first_button_height+camera_buttons_distance])
        rotate([-90, 0, 0])
            cylinder(d=camera_buttons_diameter, h=100, $fn=20);

    translate([0, 0, bottom_thickness+camera_first_button_height+camera_buttons_distance*2])
        rotate([-90, 0, 0])
            cylinder(d=camera_buttons_diameter, h=100, $fn=20);
}
